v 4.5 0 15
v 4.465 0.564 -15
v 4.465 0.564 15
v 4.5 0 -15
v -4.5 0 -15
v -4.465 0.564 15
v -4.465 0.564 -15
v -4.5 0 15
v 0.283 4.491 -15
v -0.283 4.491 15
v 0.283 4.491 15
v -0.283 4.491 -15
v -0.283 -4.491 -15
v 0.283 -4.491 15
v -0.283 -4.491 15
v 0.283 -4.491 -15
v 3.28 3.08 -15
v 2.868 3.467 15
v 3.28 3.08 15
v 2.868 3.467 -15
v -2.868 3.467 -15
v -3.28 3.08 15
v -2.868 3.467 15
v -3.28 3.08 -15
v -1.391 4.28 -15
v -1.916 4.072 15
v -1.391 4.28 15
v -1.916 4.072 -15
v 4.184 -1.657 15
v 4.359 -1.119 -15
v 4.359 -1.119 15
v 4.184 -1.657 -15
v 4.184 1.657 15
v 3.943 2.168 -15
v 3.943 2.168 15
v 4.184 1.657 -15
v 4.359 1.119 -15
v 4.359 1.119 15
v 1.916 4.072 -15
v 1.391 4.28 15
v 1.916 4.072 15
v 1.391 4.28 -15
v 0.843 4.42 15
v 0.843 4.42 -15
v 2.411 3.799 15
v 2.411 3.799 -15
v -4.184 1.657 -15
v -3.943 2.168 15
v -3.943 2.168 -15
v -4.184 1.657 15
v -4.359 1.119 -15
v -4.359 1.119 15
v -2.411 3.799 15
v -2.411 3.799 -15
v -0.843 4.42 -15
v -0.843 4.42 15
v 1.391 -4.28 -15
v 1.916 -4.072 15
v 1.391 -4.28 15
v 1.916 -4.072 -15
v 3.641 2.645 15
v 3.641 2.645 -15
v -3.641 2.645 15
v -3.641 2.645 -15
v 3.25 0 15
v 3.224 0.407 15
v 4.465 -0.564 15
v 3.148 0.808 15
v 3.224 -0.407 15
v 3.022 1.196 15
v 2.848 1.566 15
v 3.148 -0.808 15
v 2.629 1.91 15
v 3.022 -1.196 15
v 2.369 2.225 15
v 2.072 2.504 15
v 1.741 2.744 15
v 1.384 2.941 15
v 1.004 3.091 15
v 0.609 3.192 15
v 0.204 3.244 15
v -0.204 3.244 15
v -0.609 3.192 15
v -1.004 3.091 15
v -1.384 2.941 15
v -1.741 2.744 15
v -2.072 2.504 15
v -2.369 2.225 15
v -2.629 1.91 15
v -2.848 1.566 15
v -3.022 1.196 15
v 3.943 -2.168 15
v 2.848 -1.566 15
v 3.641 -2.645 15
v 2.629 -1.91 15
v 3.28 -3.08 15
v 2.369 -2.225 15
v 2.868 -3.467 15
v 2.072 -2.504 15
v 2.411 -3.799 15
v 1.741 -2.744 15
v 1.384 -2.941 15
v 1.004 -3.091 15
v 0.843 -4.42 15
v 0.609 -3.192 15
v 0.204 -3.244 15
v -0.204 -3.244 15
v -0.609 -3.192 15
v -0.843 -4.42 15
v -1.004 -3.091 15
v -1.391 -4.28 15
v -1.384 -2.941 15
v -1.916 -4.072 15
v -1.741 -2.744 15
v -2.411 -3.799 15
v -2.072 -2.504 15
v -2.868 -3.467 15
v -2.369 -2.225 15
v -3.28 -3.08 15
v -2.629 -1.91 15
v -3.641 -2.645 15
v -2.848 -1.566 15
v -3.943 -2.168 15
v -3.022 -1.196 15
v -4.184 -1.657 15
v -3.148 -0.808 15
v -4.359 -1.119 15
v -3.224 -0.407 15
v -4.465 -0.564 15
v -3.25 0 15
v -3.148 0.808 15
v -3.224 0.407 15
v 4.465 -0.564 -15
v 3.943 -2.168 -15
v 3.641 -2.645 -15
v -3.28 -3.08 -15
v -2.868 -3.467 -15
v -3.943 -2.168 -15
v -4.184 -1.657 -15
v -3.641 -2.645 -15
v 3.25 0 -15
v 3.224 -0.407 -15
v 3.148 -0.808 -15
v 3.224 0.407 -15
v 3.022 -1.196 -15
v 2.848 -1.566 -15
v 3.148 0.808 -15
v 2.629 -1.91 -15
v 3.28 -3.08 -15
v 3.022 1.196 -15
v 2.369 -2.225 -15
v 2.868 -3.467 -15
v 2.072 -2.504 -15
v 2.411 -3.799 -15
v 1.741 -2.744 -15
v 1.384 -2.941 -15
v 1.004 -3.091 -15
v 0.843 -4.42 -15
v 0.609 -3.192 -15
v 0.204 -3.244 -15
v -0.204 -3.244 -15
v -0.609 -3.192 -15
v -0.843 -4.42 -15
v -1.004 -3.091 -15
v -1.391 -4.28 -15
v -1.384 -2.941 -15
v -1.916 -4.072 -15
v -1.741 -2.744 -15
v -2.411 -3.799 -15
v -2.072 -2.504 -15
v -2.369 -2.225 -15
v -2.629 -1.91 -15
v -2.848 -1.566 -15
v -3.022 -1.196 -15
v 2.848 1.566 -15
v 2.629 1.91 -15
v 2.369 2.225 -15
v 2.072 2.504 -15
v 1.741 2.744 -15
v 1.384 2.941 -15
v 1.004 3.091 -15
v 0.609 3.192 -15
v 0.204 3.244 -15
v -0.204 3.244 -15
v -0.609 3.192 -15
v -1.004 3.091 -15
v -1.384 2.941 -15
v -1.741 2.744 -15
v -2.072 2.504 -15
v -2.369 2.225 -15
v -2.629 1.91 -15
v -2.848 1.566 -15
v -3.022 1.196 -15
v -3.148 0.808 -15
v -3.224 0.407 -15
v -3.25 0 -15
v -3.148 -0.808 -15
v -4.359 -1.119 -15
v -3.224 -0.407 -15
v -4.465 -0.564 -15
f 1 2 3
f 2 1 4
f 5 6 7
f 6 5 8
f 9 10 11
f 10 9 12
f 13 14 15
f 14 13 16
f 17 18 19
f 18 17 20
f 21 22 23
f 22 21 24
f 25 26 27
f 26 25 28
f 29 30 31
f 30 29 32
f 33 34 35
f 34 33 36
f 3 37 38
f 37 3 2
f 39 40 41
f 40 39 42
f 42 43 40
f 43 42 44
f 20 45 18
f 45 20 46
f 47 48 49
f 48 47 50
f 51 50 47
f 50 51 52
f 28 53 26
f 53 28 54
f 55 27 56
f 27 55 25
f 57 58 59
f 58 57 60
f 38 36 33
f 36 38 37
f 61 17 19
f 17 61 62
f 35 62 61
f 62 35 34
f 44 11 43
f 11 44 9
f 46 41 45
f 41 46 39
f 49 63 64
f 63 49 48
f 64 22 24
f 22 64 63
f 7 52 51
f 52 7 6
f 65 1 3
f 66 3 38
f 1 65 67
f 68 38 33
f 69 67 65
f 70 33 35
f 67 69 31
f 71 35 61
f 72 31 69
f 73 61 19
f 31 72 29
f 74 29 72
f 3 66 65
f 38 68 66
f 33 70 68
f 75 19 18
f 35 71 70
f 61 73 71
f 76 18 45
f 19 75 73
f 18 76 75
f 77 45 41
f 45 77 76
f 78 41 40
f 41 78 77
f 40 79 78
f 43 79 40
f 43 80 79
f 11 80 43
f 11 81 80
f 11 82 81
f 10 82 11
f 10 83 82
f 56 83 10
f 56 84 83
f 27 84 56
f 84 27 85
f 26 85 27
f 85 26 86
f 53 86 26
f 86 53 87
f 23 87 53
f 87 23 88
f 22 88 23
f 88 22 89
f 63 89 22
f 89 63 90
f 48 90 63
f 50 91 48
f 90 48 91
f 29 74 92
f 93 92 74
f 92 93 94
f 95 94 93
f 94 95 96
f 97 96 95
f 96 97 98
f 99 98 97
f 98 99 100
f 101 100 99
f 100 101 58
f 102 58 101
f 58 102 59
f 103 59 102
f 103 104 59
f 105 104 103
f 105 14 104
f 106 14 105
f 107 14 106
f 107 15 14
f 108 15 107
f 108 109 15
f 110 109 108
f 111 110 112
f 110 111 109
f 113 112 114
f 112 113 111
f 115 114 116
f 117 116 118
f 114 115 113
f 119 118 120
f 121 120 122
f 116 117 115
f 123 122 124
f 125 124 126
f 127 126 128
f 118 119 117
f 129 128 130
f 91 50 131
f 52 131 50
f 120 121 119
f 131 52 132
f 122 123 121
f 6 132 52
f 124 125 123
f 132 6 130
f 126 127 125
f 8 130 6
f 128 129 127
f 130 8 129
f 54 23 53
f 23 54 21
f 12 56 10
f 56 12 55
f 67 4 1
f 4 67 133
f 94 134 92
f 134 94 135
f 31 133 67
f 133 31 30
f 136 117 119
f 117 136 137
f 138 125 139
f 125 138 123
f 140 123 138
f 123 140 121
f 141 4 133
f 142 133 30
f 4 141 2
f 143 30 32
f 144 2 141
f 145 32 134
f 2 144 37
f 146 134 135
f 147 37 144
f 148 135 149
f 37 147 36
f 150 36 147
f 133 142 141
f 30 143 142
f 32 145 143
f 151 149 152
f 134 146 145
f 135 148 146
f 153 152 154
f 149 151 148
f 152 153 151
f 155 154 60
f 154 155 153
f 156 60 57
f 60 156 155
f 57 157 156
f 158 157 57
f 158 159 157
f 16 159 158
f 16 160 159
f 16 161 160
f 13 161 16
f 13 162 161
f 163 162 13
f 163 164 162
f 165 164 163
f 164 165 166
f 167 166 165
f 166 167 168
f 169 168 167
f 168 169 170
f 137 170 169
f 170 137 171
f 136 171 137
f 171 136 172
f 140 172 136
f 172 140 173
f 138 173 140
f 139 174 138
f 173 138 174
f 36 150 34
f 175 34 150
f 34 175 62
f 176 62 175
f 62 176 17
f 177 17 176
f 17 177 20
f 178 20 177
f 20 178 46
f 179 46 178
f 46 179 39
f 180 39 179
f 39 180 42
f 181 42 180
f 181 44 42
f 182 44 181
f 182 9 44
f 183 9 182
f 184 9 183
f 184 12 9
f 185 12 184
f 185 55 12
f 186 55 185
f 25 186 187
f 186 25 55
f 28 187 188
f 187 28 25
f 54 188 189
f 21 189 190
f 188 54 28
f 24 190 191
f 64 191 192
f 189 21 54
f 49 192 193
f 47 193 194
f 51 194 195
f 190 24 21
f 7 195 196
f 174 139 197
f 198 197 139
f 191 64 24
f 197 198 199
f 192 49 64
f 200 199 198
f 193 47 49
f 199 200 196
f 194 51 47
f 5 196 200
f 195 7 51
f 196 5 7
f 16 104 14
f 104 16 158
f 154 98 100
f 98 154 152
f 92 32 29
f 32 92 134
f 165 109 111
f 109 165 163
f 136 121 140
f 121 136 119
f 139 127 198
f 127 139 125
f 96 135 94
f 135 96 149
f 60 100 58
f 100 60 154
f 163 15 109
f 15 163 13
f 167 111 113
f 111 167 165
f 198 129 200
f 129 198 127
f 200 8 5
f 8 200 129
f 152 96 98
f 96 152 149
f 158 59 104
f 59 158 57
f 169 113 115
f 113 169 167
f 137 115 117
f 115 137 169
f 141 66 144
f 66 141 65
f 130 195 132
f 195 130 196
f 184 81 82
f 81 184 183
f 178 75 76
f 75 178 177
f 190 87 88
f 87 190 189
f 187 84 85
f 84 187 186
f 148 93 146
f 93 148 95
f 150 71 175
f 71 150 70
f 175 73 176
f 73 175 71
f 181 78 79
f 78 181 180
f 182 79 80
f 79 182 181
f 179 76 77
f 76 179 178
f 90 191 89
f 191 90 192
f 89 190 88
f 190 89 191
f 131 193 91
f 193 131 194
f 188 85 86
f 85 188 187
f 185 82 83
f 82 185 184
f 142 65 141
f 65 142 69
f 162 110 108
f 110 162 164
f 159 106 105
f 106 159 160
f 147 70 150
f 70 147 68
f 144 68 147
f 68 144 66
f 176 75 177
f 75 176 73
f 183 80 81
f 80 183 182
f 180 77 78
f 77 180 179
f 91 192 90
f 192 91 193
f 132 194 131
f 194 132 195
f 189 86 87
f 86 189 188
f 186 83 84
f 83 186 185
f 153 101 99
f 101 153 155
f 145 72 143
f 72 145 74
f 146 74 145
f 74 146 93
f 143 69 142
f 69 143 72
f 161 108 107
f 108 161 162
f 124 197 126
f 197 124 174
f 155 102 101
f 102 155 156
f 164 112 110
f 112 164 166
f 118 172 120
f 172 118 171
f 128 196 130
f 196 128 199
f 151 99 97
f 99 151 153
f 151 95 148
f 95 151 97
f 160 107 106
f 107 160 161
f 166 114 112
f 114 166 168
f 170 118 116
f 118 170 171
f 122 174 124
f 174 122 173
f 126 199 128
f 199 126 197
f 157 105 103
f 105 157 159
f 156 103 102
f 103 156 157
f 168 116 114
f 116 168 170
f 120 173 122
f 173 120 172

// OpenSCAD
$fn = 50;


difference() {
	union() {
		translate(v = [0, 0, -15.0000000000]) {
			cylinder(h = 30, r = 4.5000000000);
		}
	}
	union() {
		translate(v = [0, 0, -100.0000000000]) {
			cylinder(h = 200, r = 3.2500000000);
		}
	}
}
